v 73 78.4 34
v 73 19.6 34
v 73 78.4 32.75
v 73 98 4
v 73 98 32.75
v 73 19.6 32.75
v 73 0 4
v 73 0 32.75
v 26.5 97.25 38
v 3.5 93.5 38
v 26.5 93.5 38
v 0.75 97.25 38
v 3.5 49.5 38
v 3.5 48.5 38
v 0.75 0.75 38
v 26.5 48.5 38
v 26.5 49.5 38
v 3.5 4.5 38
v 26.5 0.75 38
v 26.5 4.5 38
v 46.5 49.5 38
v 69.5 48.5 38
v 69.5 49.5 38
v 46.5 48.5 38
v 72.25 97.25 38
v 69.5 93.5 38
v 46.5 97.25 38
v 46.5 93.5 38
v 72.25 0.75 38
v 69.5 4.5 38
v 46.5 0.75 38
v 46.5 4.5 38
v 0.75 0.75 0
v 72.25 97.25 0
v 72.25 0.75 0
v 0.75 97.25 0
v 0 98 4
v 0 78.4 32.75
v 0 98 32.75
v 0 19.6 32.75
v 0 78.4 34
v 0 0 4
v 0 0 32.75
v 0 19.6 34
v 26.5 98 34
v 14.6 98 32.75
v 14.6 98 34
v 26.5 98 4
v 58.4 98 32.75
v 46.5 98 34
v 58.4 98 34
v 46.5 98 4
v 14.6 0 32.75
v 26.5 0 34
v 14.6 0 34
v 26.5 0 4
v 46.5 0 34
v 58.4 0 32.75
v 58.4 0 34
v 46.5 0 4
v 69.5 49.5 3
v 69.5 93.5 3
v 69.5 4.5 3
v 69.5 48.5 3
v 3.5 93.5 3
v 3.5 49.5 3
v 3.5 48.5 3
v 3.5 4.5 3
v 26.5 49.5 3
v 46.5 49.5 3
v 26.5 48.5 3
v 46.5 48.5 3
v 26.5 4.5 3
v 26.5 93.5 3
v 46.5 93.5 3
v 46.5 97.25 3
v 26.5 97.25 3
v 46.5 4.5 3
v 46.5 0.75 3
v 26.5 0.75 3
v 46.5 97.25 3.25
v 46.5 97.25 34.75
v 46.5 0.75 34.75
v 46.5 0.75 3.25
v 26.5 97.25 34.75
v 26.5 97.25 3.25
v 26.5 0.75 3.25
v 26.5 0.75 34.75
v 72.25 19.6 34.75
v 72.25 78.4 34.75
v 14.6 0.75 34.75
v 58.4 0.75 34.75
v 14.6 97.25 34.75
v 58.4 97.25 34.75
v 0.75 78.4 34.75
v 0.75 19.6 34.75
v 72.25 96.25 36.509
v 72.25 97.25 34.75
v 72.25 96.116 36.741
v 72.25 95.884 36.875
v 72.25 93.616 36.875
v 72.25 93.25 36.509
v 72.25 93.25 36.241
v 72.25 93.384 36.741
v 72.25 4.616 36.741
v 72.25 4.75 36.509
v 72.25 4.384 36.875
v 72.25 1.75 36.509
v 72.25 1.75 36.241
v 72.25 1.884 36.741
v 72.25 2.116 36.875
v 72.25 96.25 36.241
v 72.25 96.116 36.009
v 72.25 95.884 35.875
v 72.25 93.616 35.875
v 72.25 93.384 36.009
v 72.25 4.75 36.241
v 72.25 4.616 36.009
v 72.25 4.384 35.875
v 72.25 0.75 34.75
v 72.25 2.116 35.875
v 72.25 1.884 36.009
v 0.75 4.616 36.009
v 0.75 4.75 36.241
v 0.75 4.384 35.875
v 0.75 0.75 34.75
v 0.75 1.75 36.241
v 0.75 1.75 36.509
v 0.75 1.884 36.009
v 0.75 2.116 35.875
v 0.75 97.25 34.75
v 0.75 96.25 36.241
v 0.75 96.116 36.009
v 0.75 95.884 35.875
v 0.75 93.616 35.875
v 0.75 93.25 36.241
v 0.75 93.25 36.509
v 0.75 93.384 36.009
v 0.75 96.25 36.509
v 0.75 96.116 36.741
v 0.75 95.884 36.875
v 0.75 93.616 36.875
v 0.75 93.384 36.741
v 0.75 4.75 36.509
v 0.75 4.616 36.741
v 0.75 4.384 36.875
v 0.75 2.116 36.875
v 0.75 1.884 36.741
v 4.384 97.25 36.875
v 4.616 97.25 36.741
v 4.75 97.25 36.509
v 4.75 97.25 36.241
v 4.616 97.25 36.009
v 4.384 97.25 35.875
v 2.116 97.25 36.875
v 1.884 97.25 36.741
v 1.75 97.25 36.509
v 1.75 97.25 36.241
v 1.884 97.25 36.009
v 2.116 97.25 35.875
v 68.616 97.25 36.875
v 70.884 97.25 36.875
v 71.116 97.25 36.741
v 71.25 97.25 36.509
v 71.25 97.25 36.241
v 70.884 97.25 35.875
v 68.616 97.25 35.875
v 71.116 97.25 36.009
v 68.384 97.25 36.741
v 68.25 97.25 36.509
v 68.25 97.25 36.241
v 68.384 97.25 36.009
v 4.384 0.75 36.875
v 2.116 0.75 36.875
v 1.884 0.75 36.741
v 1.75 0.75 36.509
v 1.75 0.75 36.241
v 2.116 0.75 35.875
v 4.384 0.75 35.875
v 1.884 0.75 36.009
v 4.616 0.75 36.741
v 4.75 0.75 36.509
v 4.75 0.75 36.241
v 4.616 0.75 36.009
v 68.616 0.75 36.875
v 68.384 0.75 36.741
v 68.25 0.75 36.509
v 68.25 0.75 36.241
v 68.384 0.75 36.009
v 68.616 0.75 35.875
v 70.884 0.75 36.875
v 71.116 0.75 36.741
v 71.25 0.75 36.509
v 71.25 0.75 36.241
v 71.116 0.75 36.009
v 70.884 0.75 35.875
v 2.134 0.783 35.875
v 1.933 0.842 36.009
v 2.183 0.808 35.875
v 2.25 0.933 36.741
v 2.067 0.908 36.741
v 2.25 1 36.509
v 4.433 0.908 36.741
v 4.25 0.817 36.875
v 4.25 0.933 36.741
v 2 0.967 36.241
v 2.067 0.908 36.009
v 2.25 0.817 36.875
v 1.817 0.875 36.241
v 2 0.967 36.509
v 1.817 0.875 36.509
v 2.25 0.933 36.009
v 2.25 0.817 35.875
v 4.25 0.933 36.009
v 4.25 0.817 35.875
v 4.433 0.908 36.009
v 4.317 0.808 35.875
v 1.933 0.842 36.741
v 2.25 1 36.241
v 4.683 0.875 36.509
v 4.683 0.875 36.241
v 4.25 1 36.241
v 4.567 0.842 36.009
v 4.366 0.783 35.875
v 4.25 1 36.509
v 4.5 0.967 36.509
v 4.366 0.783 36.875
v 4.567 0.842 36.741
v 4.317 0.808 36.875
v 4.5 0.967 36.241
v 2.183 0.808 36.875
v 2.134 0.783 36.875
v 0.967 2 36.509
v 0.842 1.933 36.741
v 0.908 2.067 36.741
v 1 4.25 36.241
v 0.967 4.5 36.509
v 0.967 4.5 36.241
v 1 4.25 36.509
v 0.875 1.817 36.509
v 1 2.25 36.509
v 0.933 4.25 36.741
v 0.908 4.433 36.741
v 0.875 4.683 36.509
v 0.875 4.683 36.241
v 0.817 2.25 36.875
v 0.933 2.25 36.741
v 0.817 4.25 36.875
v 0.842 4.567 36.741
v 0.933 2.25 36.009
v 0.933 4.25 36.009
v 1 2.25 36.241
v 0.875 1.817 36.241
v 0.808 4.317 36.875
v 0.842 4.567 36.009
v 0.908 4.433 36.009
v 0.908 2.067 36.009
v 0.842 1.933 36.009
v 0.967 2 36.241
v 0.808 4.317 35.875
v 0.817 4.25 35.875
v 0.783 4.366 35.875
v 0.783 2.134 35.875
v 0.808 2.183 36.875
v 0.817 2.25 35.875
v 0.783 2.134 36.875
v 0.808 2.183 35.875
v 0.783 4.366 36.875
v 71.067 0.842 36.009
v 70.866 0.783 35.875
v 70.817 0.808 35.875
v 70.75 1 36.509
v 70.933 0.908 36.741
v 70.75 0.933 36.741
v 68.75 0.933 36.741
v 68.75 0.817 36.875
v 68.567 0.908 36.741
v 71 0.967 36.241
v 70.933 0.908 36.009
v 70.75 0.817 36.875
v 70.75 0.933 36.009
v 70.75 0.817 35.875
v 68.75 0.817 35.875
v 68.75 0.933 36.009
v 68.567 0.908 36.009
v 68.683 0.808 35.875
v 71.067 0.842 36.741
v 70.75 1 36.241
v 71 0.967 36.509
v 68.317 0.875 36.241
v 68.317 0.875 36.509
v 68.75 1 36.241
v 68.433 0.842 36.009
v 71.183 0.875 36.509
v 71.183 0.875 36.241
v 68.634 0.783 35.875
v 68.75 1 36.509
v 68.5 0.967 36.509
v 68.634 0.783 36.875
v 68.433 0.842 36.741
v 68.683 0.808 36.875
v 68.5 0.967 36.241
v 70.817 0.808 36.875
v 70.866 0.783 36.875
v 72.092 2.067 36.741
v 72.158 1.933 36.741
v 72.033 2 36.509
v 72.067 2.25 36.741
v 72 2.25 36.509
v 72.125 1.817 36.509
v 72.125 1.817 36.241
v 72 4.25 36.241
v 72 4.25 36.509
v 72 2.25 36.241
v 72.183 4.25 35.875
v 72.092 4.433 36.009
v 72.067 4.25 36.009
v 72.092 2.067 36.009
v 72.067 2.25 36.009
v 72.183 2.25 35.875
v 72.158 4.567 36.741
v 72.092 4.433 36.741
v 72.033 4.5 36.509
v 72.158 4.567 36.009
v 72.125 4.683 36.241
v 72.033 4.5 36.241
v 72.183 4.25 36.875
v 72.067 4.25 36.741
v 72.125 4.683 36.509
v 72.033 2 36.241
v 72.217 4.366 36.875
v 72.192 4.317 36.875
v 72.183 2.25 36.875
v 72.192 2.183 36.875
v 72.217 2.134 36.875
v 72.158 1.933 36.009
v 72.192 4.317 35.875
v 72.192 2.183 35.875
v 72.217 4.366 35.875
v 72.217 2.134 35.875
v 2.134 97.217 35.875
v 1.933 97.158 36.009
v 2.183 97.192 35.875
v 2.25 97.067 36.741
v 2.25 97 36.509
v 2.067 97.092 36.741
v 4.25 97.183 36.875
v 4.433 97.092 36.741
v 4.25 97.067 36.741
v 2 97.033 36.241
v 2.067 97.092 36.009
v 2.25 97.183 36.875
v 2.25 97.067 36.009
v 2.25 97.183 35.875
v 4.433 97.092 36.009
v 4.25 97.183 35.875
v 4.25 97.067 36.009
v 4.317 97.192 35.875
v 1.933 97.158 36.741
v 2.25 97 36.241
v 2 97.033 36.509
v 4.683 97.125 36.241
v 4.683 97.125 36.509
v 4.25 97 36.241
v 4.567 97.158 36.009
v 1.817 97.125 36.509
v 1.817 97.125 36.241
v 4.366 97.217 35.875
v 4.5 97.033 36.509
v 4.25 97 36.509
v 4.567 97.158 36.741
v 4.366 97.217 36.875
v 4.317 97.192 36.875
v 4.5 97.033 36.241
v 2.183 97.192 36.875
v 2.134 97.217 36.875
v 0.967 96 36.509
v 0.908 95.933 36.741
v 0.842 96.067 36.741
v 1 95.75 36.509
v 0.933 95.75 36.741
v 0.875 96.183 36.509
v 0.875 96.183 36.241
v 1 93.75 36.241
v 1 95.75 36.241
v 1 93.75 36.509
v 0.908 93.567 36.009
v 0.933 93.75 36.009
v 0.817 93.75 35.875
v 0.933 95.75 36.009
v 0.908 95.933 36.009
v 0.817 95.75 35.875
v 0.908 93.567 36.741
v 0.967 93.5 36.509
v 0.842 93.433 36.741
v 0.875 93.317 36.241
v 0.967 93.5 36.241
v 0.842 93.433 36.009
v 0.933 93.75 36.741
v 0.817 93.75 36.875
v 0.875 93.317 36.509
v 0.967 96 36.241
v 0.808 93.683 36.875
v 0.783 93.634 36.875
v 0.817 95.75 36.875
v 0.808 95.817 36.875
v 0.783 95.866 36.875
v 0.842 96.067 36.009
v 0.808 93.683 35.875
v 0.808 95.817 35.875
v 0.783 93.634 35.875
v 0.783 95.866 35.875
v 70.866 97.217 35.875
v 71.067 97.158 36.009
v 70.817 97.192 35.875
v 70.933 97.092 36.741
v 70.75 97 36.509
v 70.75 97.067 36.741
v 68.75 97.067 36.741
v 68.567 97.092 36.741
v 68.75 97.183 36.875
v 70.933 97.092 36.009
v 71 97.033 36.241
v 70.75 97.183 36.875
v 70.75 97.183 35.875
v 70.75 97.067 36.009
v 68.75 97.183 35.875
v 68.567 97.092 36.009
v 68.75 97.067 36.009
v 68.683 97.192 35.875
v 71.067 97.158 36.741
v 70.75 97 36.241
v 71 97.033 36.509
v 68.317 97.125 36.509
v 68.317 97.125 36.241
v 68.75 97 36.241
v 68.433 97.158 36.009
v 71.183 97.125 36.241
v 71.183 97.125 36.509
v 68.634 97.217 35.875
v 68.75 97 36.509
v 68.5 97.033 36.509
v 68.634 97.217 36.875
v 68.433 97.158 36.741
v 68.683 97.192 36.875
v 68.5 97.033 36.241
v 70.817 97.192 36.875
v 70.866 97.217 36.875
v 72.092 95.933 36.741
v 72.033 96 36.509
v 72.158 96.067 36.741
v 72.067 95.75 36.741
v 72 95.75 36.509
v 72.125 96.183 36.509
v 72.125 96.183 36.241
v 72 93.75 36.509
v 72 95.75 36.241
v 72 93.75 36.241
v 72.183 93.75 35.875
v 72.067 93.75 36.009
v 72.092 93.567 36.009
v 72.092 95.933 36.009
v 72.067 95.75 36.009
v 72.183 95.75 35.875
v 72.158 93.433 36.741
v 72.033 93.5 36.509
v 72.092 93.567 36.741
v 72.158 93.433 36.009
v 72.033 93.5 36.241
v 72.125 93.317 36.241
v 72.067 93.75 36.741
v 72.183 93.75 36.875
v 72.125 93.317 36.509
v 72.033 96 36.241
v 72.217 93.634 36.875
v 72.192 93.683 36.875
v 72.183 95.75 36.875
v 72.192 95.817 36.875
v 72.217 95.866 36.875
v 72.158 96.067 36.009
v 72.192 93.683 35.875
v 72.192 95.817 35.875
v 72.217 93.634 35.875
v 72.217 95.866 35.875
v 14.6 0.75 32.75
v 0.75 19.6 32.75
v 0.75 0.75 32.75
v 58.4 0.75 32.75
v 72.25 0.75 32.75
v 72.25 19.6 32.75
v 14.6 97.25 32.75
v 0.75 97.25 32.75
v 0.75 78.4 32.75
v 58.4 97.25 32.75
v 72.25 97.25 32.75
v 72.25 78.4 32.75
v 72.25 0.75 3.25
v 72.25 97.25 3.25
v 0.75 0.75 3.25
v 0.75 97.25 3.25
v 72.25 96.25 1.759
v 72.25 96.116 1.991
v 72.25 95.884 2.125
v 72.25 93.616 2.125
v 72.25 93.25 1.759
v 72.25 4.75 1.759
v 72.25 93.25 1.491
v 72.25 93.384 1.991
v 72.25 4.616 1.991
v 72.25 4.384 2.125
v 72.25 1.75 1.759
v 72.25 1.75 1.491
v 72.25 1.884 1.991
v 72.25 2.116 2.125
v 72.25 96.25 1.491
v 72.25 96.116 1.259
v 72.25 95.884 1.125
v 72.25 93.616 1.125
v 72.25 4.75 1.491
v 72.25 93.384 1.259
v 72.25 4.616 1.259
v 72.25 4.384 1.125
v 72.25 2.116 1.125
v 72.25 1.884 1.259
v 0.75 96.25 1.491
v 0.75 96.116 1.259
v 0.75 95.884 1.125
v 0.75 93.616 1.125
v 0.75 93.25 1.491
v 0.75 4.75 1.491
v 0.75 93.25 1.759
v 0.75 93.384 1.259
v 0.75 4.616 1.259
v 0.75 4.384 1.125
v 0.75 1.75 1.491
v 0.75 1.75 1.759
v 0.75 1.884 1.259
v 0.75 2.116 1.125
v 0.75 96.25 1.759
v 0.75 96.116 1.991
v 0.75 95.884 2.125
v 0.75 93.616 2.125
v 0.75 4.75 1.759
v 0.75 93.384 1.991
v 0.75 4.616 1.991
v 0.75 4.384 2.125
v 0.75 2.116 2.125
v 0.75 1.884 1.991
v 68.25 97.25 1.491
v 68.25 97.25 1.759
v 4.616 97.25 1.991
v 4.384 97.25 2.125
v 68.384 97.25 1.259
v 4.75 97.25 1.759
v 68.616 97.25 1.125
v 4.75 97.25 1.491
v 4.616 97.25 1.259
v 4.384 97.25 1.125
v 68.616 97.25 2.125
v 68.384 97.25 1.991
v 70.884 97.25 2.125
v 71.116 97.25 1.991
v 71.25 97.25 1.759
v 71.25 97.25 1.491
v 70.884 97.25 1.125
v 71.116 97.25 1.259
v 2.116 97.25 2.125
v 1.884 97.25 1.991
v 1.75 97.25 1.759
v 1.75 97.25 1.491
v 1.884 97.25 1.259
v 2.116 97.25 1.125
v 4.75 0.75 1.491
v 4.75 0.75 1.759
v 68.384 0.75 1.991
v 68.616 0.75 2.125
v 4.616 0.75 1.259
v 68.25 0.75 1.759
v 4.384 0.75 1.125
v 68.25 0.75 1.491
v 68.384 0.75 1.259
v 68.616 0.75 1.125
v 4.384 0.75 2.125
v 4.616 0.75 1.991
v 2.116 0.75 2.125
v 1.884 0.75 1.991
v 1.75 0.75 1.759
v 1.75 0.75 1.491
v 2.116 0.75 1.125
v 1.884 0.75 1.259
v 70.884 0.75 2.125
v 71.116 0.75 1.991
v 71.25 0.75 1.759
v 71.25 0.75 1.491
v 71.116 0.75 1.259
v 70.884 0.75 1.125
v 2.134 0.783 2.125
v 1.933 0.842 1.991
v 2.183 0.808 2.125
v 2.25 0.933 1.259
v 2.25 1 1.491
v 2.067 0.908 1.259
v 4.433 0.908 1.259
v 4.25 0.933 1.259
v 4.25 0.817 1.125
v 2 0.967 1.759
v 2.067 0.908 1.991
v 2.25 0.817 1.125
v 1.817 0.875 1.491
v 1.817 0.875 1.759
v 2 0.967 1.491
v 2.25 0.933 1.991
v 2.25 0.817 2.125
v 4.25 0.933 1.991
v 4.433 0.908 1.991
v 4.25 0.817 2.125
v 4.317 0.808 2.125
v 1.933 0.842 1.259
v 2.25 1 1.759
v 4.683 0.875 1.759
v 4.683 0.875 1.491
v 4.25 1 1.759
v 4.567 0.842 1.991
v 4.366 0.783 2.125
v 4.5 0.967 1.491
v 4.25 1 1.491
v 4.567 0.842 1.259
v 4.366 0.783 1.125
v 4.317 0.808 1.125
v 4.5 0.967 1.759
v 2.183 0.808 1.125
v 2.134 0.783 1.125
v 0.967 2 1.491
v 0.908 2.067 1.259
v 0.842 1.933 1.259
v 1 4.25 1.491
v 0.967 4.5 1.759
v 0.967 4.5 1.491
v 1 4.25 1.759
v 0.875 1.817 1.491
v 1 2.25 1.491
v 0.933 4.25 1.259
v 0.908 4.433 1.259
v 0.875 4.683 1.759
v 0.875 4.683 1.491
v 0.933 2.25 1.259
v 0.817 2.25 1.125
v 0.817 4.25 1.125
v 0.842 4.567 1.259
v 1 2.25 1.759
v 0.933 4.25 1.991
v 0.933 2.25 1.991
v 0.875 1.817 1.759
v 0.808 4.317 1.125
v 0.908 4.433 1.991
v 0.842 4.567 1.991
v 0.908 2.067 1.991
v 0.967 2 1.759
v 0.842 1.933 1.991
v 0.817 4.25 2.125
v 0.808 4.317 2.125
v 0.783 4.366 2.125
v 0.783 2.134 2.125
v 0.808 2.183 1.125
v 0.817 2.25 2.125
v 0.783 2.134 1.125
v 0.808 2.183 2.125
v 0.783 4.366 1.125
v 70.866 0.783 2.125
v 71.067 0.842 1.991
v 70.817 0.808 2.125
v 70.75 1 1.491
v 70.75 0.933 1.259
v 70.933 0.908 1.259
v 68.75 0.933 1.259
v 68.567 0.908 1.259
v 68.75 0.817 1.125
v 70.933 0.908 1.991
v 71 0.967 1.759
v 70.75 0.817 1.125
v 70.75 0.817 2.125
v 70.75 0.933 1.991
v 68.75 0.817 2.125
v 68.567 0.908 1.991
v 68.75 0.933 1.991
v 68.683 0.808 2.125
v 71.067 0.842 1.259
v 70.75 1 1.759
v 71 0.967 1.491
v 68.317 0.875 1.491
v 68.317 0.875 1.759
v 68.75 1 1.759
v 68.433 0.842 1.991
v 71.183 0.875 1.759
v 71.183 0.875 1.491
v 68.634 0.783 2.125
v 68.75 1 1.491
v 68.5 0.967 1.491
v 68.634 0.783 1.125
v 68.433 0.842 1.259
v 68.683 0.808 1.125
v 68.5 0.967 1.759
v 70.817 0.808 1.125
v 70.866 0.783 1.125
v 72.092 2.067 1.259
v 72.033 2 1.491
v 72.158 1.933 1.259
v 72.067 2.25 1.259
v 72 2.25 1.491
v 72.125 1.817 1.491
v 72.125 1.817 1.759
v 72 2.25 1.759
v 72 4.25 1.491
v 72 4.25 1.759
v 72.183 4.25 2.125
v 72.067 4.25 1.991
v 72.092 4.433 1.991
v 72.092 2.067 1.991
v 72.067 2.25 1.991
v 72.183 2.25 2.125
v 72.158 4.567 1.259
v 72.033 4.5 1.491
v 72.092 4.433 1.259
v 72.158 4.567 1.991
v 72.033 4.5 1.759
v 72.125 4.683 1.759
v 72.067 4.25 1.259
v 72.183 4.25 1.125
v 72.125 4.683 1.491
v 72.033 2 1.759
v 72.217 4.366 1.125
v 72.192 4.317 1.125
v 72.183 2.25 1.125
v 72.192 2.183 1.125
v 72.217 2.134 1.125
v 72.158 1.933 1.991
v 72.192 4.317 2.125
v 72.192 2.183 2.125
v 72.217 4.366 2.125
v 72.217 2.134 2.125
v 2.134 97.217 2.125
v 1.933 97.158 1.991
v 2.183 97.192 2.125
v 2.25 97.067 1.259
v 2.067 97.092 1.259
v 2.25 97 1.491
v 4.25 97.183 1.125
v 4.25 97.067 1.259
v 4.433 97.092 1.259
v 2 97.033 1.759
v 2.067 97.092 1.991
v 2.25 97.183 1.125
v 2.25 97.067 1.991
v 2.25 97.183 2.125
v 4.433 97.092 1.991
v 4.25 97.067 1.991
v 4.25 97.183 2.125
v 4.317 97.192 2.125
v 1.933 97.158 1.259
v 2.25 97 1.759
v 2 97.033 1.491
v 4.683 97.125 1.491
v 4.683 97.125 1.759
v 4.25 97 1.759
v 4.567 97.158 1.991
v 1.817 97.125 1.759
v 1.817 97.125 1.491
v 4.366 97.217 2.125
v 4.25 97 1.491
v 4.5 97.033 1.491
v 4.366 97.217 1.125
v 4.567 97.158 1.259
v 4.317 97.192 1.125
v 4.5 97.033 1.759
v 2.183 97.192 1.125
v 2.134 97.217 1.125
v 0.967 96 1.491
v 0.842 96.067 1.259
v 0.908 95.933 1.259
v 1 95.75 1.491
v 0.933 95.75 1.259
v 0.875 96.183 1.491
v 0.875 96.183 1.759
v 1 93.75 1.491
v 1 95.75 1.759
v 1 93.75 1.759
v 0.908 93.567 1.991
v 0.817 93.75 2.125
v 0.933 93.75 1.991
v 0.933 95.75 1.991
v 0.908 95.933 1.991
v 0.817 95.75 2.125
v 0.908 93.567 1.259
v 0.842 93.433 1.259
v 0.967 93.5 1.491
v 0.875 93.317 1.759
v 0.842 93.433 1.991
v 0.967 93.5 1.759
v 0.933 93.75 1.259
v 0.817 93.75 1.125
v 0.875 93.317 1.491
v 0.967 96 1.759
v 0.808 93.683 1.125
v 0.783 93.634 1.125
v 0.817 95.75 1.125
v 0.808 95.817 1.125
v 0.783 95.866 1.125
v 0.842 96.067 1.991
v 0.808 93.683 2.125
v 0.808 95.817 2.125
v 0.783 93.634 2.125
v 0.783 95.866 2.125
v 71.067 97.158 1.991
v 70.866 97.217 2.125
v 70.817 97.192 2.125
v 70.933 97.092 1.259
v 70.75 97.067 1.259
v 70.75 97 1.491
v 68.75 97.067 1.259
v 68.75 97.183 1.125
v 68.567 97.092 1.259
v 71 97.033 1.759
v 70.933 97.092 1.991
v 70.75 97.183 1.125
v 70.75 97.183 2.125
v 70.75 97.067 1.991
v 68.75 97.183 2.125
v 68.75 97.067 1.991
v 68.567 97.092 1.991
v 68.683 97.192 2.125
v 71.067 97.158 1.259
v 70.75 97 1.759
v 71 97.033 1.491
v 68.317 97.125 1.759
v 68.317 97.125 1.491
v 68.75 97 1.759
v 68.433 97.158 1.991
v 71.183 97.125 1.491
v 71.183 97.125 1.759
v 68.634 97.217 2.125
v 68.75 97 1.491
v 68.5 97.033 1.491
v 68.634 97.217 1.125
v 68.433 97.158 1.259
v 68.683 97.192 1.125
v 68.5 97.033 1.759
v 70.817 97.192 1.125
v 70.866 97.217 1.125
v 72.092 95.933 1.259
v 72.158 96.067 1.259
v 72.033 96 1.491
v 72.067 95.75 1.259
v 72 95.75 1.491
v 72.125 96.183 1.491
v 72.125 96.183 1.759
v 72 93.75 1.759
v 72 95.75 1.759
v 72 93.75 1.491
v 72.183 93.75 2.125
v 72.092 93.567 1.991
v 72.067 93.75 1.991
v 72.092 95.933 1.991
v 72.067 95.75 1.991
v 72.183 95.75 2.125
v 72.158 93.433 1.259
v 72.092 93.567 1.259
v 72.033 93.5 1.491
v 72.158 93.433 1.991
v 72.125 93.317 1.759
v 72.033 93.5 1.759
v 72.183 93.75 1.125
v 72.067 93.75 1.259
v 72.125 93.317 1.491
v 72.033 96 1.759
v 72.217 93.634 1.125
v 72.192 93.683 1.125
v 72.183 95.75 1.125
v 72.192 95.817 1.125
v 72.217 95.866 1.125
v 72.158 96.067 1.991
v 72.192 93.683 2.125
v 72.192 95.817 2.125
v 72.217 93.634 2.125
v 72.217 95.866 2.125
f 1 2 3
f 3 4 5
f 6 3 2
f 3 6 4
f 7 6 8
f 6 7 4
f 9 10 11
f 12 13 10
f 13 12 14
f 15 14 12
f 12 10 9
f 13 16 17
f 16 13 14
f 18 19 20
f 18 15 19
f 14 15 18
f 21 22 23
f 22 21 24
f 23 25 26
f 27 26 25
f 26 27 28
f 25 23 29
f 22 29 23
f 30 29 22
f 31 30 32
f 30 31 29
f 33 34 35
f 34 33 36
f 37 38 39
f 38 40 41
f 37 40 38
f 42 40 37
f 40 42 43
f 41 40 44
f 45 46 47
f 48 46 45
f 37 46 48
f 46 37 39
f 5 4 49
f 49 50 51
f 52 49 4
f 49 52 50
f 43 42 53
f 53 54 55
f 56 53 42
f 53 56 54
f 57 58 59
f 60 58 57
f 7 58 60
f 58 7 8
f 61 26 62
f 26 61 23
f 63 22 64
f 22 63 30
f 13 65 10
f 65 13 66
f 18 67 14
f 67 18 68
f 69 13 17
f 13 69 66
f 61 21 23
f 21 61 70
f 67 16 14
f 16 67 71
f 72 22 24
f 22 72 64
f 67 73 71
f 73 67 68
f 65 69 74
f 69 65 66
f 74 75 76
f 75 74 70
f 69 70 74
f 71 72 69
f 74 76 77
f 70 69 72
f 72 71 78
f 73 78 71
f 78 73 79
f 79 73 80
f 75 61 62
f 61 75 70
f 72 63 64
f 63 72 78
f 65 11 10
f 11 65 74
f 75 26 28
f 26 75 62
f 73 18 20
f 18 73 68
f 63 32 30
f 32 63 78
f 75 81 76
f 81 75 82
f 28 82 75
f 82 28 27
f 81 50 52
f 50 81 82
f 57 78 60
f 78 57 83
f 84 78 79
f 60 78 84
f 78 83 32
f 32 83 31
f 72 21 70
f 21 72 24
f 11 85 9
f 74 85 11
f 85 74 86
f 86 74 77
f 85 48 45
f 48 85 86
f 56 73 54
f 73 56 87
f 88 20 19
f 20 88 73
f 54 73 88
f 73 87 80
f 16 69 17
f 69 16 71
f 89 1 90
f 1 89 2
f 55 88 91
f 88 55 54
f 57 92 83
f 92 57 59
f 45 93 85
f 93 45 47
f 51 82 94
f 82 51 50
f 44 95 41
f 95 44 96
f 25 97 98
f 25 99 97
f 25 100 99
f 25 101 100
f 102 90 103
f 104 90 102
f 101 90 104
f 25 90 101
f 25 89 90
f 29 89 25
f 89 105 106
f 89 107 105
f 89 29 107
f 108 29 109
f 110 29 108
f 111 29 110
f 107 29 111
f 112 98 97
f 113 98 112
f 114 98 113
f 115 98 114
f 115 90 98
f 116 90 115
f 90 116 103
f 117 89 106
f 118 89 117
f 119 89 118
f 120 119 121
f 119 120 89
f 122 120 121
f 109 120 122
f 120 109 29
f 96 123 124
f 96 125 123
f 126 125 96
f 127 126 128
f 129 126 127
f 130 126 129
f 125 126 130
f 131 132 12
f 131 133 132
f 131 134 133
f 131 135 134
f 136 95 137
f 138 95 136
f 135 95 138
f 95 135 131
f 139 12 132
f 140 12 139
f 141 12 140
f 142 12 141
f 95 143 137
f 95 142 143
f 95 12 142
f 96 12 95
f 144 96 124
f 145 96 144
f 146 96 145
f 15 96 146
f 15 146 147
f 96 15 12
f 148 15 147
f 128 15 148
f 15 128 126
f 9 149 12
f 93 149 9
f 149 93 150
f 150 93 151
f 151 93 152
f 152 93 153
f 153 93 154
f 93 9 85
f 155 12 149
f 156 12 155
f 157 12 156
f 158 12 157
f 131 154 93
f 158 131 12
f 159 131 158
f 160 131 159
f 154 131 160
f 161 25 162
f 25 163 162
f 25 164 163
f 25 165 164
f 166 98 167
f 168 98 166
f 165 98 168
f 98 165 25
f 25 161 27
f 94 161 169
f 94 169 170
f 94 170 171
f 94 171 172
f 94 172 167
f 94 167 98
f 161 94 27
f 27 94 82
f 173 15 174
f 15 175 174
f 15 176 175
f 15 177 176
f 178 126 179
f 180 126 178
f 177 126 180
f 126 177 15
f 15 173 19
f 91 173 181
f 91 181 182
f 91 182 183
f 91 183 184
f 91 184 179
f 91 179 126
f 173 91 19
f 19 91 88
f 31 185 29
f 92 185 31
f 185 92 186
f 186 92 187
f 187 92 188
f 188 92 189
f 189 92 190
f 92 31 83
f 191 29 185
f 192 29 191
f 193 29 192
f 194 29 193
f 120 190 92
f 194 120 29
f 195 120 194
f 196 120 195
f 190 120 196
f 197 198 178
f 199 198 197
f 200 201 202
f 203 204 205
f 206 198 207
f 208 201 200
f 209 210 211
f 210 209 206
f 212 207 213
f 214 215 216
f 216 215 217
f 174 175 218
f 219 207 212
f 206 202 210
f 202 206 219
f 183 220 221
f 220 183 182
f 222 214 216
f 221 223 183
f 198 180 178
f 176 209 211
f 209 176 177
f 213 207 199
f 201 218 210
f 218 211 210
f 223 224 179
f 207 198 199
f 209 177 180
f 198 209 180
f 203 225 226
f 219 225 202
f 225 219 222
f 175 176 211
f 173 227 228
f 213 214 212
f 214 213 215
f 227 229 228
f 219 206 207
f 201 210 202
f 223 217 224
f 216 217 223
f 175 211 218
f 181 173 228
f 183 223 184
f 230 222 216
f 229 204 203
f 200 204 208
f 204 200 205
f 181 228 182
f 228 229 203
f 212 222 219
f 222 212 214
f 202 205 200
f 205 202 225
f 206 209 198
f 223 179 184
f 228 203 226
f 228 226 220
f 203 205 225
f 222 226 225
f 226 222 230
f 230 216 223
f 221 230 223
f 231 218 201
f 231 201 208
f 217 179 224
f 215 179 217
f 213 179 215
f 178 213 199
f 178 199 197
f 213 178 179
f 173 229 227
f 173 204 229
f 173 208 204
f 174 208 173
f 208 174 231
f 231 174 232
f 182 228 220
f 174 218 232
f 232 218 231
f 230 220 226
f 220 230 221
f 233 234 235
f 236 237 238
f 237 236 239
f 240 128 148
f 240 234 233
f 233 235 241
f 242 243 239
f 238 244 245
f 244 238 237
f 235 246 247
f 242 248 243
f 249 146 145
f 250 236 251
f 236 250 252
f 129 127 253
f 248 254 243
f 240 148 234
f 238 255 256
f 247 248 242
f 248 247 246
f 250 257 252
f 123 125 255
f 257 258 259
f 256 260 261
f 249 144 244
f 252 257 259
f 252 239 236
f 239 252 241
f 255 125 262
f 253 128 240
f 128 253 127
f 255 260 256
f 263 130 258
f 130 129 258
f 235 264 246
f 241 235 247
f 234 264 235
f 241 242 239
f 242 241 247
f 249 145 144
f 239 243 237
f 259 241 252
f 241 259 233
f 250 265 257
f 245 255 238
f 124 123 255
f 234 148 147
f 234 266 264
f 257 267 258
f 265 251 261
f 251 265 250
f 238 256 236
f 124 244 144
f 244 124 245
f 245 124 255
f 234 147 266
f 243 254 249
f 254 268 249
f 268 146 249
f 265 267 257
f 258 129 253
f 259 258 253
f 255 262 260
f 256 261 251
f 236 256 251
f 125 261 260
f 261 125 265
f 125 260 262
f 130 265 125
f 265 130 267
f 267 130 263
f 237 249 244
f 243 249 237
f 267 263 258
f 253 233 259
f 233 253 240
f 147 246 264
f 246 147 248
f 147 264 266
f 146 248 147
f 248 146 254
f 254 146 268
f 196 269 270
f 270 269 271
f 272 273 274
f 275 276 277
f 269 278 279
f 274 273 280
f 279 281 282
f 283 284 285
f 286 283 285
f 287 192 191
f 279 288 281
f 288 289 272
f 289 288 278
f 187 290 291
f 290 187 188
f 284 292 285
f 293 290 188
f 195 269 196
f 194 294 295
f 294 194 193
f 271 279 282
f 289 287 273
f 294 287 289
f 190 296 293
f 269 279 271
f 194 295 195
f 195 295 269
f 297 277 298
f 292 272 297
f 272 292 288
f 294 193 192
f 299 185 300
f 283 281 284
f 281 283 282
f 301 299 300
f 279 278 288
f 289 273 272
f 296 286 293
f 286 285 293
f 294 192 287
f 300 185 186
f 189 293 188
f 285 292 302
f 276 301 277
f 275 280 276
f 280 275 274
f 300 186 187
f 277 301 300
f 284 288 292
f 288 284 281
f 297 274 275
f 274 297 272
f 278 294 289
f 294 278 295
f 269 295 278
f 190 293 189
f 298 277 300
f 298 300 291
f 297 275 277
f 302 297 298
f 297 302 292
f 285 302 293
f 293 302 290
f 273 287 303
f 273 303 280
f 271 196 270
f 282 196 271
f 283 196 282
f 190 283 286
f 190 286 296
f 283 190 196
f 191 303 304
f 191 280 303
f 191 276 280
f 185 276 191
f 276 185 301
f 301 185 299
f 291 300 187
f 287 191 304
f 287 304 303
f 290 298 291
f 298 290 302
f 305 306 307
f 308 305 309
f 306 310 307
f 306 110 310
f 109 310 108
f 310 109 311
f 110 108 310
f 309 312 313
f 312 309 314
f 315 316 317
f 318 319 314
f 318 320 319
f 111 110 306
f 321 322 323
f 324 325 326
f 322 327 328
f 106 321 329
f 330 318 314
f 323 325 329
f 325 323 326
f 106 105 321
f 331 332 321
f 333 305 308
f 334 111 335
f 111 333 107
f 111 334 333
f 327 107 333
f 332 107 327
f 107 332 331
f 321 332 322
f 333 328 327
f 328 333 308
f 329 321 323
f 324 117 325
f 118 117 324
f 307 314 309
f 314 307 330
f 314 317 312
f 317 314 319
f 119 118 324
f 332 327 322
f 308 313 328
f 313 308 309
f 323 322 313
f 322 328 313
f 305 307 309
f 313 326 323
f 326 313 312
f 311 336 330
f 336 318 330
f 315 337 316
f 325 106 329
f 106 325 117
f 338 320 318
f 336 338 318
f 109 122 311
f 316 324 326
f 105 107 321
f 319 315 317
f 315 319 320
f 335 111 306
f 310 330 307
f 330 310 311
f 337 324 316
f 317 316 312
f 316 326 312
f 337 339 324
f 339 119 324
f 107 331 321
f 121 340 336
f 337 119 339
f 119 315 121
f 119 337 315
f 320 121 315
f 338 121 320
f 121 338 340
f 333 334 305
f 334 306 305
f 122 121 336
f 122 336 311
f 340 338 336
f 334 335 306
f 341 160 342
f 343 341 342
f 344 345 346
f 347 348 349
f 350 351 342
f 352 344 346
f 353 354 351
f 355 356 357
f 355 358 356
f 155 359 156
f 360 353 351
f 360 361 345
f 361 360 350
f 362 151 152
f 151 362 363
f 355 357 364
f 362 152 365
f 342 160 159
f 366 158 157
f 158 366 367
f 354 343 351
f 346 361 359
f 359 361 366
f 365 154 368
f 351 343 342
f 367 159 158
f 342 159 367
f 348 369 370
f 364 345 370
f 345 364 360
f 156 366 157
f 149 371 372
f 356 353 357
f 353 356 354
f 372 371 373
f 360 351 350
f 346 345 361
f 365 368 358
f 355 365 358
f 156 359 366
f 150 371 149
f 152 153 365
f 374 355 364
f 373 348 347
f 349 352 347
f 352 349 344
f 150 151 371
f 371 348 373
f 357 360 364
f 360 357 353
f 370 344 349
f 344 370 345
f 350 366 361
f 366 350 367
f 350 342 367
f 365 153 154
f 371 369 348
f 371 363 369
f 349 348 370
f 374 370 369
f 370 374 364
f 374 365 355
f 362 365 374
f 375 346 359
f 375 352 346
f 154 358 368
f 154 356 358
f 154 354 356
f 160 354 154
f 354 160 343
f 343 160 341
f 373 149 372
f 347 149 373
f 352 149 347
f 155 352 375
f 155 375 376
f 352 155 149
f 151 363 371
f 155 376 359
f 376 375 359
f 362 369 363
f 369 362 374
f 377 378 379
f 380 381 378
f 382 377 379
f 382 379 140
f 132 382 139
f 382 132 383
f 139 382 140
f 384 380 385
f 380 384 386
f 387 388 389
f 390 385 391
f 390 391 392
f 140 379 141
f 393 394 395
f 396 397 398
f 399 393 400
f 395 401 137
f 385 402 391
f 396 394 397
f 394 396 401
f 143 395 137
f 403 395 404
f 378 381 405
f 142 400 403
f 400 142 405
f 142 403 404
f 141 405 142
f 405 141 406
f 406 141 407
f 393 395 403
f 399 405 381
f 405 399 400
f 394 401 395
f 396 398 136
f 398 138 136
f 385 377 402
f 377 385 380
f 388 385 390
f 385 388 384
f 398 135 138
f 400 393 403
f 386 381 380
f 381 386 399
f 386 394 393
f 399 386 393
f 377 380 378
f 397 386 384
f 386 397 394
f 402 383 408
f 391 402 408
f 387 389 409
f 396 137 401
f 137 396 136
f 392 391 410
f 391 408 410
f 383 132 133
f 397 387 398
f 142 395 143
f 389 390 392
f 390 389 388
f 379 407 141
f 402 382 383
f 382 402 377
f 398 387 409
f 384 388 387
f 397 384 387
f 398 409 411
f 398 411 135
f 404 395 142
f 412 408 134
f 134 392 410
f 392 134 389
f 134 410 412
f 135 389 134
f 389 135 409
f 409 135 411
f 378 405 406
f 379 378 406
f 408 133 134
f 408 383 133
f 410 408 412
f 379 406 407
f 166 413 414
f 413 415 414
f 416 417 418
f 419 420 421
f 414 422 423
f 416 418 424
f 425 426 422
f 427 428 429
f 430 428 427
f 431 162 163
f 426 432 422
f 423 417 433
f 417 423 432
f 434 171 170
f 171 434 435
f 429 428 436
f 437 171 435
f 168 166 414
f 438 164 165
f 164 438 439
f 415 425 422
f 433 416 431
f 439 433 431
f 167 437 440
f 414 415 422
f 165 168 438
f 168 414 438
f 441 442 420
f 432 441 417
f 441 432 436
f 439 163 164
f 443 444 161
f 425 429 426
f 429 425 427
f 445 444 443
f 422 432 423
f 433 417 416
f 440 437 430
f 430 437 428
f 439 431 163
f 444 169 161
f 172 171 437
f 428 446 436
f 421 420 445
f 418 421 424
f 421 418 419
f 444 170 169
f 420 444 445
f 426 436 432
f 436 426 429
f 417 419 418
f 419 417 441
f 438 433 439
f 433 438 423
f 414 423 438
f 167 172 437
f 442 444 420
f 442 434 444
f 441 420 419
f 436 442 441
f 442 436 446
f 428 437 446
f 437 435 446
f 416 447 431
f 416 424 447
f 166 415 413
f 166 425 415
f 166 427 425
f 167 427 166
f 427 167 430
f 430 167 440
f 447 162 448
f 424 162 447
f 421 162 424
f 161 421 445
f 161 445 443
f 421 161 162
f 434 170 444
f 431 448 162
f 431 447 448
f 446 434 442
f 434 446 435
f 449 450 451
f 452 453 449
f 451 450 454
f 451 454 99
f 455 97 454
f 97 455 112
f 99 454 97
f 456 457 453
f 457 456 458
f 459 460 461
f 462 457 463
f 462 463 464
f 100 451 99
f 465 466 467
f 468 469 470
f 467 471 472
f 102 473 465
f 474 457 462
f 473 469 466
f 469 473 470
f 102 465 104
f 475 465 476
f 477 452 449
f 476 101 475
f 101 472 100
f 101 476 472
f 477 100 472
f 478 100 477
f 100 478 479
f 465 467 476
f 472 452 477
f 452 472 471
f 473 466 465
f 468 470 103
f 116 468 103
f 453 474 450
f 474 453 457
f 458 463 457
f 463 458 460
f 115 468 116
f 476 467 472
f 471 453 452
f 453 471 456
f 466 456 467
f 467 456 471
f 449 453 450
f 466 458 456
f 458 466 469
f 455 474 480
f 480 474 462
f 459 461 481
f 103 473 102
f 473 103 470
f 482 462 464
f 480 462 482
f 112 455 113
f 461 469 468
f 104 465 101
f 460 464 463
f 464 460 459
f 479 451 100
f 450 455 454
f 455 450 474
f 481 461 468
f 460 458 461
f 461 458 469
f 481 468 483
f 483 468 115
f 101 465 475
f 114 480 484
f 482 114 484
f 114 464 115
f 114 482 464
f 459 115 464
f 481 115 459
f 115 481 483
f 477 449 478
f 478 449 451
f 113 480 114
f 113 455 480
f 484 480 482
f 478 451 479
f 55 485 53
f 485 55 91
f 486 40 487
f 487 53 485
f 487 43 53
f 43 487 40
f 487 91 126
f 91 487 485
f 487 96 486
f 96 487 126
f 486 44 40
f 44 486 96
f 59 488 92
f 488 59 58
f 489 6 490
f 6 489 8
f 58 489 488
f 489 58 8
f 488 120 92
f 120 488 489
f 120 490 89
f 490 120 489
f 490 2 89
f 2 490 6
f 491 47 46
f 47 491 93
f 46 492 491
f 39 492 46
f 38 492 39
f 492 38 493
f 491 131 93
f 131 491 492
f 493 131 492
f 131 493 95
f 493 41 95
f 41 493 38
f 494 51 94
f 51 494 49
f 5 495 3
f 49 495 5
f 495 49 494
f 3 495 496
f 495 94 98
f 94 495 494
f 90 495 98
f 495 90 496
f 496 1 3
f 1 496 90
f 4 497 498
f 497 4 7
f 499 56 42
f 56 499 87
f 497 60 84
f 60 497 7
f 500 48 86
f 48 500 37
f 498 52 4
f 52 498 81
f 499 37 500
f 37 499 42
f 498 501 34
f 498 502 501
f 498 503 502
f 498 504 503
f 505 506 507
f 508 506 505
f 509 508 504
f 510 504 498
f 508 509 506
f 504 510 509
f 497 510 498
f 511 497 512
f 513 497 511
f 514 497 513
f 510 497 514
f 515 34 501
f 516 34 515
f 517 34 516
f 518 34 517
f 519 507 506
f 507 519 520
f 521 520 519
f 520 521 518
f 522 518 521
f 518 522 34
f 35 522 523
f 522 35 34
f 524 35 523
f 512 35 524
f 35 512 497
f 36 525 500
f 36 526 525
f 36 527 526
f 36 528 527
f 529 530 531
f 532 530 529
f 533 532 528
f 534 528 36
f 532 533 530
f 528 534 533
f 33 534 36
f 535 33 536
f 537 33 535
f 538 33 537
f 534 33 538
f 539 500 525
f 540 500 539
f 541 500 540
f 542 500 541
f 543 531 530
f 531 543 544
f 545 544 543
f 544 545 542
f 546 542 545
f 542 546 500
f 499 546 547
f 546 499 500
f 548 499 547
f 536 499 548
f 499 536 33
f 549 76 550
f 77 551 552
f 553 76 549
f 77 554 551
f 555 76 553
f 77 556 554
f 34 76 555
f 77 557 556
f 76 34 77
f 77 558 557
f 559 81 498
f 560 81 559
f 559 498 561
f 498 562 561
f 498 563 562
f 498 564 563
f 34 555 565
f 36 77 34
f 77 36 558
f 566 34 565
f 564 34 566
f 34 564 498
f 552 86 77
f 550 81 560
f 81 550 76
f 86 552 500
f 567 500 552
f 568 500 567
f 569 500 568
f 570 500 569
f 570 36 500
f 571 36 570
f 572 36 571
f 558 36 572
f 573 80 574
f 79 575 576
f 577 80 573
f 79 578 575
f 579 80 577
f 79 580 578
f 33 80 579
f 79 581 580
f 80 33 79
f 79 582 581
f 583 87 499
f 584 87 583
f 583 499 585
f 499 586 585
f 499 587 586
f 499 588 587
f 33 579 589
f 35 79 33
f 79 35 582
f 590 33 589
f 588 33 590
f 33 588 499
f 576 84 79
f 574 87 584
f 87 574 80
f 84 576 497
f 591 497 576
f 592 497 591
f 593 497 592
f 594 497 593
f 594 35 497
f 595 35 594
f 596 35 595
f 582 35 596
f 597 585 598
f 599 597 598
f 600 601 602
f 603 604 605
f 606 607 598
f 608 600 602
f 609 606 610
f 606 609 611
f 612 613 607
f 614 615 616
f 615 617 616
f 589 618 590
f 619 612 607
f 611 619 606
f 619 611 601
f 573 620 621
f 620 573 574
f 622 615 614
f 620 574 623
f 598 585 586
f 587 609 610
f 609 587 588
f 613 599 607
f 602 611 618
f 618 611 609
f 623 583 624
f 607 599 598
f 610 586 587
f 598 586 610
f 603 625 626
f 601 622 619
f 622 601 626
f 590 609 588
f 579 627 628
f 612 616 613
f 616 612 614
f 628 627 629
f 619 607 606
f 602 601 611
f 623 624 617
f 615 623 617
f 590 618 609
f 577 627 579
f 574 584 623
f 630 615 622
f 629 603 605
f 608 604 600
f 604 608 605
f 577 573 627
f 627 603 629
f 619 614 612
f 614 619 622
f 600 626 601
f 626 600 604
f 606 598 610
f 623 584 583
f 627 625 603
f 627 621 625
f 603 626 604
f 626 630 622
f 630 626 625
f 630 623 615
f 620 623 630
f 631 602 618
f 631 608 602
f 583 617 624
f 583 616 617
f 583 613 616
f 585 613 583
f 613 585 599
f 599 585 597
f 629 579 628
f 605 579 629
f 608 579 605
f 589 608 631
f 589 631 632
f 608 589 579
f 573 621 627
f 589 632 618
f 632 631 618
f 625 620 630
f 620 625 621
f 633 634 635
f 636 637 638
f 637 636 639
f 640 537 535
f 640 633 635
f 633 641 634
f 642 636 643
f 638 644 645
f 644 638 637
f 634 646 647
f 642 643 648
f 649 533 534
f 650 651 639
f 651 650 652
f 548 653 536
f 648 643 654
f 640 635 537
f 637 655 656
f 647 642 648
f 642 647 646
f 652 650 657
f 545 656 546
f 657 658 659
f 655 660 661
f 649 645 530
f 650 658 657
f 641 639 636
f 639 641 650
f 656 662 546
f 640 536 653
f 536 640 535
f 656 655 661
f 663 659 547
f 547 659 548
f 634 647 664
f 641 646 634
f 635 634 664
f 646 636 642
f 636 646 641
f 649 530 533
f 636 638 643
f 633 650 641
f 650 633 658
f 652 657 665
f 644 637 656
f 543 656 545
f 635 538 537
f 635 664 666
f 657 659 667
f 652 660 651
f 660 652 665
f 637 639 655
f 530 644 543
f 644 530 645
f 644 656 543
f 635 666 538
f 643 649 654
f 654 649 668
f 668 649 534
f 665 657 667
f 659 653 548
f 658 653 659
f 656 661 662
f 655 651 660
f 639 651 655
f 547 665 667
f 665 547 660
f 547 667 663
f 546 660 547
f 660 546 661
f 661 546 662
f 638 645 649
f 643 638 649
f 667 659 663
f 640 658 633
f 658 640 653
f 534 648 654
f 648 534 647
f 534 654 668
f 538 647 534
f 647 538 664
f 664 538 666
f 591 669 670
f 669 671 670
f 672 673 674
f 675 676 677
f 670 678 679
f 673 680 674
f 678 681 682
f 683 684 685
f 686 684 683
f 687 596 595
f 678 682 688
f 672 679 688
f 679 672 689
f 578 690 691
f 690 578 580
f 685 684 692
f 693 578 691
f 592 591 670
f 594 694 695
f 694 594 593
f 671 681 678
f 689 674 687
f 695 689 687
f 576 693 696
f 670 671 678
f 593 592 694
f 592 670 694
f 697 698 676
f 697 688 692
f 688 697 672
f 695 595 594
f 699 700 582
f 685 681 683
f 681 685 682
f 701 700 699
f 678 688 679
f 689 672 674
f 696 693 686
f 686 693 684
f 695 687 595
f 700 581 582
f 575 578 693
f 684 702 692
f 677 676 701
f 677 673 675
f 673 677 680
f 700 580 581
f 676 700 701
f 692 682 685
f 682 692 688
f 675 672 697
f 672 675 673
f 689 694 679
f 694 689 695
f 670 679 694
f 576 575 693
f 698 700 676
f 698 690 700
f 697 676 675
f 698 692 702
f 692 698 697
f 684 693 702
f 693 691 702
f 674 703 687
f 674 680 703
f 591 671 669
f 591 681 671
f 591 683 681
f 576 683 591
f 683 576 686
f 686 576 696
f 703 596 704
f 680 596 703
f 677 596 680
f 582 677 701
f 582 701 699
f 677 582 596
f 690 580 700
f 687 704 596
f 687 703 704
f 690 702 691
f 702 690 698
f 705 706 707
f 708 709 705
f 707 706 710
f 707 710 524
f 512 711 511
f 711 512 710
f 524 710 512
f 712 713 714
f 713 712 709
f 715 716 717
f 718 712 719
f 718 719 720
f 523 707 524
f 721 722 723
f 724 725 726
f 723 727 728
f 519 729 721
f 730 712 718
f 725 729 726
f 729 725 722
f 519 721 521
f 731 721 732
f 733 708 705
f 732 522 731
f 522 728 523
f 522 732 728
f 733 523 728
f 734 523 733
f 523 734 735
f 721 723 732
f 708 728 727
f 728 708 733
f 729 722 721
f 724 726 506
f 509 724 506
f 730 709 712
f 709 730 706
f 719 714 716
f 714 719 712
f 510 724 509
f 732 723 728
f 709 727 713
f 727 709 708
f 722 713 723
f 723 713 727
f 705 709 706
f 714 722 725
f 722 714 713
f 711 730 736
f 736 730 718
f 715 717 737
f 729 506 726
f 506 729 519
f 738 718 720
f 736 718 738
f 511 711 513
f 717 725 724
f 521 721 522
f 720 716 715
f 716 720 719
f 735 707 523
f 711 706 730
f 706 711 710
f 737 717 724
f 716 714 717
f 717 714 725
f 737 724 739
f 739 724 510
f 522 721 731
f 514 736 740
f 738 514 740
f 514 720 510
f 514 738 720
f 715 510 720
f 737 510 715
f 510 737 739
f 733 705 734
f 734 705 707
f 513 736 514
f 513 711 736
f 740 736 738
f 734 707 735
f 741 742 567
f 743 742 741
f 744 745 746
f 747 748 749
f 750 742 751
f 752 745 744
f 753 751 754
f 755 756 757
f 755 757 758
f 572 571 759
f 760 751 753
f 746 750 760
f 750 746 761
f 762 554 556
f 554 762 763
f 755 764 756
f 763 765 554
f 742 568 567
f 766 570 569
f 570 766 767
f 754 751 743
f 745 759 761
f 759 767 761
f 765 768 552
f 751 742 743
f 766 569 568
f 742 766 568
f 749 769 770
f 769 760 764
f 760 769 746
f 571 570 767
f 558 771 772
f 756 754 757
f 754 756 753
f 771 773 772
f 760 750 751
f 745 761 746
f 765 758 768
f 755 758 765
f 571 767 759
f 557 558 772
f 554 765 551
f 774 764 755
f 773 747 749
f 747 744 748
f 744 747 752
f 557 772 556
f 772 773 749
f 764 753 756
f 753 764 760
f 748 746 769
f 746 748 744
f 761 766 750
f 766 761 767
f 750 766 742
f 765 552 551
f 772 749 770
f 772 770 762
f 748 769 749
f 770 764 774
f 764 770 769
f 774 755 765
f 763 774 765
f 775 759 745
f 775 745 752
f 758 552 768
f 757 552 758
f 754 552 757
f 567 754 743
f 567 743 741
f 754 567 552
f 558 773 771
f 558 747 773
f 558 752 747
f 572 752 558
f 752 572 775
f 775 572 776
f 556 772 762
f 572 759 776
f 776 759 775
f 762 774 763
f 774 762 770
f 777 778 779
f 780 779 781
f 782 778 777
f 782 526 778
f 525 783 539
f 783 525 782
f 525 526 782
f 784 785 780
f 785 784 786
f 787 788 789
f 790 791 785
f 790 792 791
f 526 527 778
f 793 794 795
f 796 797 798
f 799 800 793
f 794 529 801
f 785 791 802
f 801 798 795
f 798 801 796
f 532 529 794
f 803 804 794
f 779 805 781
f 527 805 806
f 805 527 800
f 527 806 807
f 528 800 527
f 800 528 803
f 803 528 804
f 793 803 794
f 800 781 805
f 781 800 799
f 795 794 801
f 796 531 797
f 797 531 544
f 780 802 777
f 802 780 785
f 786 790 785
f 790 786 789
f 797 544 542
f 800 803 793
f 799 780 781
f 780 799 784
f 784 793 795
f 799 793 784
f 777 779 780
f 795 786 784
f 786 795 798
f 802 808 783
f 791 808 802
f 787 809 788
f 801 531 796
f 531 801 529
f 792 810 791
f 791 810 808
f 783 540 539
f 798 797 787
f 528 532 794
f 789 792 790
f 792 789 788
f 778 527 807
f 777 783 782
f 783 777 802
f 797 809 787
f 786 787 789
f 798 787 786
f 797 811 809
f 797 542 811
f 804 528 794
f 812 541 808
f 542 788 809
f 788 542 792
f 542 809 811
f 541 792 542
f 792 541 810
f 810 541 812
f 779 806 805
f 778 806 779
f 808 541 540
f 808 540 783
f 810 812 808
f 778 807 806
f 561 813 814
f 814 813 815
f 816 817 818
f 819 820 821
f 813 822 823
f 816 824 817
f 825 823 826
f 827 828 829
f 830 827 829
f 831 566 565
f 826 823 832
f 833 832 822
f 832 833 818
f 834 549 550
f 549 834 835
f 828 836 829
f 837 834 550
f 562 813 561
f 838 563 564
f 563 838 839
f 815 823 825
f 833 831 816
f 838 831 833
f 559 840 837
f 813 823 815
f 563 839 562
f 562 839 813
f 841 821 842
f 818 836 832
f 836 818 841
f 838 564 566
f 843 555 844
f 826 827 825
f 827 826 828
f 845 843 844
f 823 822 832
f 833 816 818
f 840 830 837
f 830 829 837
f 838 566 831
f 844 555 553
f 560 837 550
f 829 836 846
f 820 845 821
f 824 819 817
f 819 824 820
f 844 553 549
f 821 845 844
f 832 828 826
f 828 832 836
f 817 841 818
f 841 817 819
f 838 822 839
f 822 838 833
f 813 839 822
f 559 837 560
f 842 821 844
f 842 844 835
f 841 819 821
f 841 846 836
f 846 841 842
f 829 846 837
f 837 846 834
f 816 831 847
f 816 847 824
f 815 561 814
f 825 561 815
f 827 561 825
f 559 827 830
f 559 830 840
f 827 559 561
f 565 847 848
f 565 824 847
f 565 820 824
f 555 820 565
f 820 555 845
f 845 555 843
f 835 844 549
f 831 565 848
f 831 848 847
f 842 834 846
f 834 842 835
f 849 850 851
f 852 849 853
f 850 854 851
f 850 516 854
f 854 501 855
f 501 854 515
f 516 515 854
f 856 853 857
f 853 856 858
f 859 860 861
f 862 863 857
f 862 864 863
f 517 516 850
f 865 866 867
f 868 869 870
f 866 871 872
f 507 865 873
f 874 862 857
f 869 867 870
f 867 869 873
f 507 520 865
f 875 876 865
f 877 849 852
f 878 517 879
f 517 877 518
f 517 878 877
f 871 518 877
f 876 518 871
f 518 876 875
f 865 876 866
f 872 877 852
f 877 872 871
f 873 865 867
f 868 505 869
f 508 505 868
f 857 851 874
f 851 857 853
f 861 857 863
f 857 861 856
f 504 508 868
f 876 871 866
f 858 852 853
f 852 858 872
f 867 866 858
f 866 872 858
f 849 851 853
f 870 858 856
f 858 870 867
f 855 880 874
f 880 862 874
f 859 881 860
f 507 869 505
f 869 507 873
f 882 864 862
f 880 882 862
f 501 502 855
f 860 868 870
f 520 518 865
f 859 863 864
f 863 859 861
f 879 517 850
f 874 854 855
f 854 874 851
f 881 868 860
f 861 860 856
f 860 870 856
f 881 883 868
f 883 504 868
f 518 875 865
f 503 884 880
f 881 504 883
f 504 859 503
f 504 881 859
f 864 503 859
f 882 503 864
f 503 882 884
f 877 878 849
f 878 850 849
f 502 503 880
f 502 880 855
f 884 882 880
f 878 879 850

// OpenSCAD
include <boardgame_insert_toolkit_lib.2.scad>;

// determines whether lids are output.
g_b_print_lid = f;

// determines whether boxes are output.
g_b_print_box = t; 

// Focus on one box
g_isolated_print_box = ""; 

// Used to visualize how all of the boxes fit together. 
g_b_visualization = false;          
        
// this is the outer wall thickness. 
//Default = 1.5mm
g_wall_thickness = 1.5;

// The tolerance value is extra space put between planes of the lid and box that fit together.
// Increase the tolerance to loosen the fit and decrease it to tighten it.
//
// Note that the tolerance is applied exclusively to the lid.
// So if the lid is too tight or too loose, change this value ( up for looser fit, down for tighter fit ) and 
// you only need to reprint the lid.
// 
// The exception is the stackable box, where the bottom of the box is the lid of the box below,
// in which case the tolerance also affects that box bottom.
//
g_tolerance = 0.15;

// This adjusts the position of the lid detents downward. 
// The larger the value, the bigger the gap between the lid and the box.
g_tolerance_detents_pos = 0.1;

label = "Small Cards"; // Roberta Tolben Quill Olette Elwyn
data =
[

    [   "card tray - push down",
        [
            [ BOX_SIZE_XYZ,                                     [73, 98,38] ],
            [ BOX_LID,
                [
                    [ LID_SOLID_B, f],    
                    [ LID_PATTERN_RADIUS,         5],        
                    [ LID_LABELS_BG_THICKNESS, 4],

                    [ LID_PATTERN_N1,               7 ],
                    [ LID_PATTERN_N2,               7 ],
                    [ LID_PATTERN_ANGLE,            25.7 ],
                    [ LID_PATTERN_ROW_OFFSET,       10 ],
                    [ LID_PATTERN_COL_OFFSET,       140 ],
                    [ LID_PATTERN_THICKNESS,        0.6 ],
                    [ LABEL,
                        [
                            [ LBL_TEXT,    label],
                            [ ROTATION,     45 ],
                            [ LBL_SIZE,     AUTO ],
                            [ LBL_FONT,         "Orthodox Herbertarian:style=Regular"],
                        ]
           
                ],
                 ]
            ],

            [ BOX_COMPONENT,
                [                
                    [ CMP_NUM_COMPARTMENTS_XY, [1, 2] ],
                    [ CMP_COMPARTMENT_SIZE_XYZ, [ 66, 44, 35] ],
                ]
            ], 

            [ BOX_COMPONENT,
                [
                    [CMP_COMPARTMENT_SIZE_XYZ,  [ 20, 99, 35 ] ],
                ]
            ],                          
        ]
    ],    

    
  

 
    


   


];


MakeAll();
